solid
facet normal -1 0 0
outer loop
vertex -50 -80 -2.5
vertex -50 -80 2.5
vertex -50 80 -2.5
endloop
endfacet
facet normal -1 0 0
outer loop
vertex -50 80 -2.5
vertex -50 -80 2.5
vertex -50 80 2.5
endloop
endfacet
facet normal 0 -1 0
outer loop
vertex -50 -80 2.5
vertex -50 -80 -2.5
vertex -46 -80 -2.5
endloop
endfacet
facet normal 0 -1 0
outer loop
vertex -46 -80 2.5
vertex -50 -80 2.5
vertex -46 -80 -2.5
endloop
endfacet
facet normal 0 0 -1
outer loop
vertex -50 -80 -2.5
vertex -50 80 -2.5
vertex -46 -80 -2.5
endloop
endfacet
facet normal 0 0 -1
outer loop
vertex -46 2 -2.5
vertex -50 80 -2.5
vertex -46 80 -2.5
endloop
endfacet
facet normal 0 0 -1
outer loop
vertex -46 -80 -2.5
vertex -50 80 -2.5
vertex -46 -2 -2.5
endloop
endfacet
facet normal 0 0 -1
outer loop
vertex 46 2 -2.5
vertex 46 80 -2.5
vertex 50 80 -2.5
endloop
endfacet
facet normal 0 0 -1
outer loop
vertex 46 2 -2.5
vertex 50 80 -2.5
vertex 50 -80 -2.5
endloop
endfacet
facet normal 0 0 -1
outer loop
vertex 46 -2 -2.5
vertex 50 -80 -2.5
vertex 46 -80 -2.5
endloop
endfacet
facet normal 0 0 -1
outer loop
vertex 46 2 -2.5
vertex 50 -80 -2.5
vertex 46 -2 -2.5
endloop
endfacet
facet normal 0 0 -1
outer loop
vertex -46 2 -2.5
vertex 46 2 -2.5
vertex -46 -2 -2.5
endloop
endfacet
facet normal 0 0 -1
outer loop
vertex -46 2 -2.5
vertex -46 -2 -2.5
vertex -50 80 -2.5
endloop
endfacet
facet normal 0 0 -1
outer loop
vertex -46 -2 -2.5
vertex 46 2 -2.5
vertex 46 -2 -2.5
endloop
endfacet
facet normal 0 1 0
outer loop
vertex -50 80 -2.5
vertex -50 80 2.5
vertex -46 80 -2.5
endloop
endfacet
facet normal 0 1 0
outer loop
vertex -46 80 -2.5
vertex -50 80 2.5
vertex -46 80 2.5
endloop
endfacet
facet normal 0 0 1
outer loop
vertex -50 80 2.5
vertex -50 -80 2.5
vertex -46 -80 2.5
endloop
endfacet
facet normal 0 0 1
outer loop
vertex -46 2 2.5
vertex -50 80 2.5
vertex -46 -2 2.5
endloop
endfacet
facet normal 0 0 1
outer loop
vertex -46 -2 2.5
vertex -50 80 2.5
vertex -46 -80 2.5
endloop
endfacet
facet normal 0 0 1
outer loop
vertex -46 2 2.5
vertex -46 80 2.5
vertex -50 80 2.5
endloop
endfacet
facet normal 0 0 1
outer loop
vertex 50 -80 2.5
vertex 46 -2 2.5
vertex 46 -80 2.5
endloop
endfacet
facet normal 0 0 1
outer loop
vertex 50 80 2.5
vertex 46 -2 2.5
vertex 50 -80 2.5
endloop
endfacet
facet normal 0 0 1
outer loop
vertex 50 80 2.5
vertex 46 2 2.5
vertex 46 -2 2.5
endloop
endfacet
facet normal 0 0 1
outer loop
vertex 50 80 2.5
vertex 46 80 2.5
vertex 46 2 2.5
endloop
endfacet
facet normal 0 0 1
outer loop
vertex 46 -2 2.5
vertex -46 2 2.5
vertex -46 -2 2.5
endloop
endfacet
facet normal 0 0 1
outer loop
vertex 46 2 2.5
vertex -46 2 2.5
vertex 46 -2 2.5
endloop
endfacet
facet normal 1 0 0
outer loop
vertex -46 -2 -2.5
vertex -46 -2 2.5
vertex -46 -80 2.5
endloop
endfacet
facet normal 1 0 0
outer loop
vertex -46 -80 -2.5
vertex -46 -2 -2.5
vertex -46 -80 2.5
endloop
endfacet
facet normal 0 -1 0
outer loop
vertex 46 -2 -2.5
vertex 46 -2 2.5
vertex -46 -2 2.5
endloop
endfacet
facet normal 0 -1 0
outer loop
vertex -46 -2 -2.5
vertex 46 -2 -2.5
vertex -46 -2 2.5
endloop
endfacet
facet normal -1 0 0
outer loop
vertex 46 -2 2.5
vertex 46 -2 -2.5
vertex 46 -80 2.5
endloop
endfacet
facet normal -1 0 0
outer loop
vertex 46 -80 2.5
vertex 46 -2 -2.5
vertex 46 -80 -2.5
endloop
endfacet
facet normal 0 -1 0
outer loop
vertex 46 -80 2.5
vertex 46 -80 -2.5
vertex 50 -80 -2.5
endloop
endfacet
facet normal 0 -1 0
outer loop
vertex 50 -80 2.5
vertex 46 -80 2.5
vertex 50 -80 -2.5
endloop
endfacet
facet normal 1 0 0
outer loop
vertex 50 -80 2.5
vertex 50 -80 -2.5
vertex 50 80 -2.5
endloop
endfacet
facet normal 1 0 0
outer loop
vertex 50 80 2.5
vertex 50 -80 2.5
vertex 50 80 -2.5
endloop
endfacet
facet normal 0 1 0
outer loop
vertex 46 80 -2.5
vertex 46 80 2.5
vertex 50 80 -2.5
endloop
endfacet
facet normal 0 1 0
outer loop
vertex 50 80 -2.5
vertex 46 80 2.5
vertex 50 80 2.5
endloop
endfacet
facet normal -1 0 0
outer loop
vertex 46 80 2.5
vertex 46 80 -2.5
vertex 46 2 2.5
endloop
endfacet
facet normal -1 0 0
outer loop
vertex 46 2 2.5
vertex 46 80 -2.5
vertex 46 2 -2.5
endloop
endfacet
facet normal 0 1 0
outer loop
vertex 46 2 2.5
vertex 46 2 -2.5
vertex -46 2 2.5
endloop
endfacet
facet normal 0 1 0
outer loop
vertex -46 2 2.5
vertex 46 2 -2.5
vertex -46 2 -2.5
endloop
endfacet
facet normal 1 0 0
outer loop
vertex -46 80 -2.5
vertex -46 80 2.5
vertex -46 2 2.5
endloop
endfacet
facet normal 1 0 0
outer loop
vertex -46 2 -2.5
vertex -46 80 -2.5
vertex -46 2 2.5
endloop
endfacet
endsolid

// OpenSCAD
difference() {
	cube([100,160, 5], center=true);
	translate([0, 42, 0]) cube([92,80, 6], center=true);
	translate([0, -42, 0]) cube([92,80, 6], center=true);
}
